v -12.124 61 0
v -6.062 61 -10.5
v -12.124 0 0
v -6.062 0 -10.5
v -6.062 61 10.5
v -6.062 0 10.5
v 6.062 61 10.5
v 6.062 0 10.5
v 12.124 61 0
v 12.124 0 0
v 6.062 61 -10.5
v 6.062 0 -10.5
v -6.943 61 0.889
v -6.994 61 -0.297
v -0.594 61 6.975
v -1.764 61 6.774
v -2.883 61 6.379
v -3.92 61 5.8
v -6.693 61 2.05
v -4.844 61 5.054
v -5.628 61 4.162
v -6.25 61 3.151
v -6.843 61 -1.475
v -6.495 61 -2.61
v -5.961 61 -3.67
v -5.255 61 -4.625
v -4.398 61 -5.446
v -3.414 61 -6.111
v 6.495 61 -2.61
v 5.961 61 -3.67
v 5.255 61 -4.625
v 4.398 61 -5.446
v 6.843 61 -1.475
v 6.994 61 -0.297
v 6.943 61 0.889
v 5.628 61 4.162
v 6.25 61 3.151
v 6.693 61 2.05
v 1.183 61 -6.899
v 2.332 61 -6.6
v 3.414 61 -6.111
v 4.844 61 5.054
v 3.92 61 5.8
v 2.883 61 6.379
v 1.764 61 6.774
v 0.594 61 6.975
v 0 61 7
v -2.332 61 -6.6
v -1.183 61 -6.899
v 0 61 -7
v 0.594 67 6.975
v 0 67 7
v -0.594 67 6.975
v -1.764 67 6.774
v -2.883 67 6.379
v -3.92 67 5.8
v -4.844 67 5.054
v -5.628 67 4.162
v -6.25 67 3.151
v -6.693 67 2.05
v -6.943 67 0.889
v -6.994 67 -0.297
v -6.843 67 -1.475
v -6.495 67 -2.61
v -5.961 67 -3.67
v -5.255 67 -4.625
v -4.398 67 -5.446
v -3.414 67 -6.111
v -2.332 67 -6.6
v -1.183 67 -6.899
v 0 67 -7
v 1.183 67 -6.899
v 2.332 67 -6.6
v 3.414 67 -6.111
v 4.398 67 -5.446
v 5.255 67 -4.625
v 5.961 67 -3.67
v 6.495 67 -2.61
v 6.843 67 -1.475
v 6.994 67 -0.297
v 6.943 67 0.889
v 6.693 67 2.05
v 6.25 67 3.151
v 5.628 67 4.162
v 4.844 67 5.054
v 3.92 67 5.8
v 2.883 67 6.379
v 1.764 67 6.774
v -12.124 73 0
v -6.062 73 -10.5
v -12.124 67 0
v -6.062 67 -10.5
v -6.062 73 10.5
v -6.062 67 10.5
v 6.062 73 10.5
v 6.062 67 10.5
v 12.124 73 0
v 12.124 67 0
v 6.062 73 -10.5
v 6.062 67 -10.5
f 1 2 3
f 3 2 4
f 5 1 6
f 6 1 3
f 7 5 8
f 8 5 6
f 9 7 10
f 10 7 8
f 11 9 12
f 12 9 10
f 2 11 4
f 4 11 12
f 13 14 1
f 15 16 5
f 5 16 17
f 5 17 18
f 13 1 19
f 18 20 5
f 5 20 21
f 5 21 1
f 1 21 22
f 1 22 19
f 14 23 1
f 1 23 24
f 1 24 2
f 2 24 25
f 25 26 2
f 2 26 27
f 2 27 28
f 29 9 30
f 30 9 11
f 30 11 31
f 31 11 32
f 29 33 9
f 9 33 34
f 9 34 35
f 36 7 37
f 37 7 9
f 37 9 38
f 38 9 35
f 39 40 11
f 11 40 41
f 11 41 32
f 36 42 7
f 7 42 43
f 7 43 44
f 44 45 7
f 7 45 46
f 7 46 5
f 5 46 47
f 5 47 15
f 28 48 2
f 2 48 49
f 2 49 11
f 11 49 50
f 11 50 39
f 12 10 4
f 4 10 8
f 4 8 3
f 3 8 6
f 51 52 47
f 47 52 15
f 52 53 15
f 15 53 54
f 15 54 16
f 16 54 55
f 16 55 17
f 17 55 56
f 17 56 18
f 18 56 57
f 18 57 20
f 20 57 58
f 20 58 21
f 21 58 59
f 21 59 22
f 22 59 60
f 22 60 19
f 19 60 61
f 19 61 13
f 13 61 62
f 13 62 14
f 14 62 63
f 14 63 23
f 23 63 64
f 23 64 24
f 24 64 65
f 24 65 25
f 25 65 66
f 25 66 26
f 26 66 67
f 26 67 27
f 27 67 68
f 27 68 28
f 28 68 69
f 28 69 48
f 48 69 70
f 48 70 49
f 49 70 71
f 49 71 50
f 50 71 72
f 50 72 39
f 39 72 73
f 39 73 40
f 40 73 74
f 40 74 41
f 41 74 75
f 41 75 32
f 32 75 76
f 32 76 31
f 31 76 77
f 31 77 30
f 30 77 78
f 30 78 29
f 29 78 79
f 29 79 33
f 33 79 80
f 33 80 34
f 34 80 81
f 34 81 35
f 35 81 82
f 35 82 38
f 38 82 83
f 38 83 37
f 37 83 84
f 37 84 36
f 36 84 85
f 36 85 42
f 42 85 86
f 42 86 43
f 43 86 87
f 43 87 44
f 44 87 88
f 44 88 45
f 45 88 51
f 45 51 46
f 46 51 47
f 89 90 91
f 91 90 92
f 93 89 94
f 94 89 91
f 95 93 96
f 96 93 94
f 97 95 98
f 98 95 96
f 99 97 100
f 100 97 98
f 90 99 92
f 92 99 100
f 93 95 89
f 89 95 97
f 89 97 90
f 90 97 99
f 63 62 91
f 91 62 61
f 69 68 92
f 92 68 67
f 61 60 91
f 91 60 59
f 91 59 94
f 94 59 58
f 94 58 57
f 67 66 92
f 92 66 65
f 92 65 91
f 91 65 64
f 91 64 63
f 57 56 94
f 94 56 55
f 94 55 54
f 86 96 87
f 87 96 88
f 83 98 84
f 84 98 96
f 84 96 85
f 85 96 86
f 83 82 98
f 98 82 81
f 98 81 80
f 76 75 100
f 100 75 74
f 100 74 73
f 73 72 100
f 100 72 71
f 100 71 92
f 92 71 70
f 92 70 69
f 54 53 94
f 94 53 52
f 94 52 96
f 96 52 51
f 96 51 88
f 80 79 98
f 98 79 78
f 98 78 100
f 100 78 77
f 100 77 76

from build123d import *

# Parameters (mm, degrees)
BOSS_EXTRUDE1_DEPTH = 61
SKETCH2_R           = 7
BOSS_EXTRUDE2_DEPTH = 6
BOSS_EXTRUDE3_DEPTH = 6


with BuildPart() as part:
    # Sketch1 → Boss-Extrude1 (new body)
    with BuildSketch(Plane(origin=(0, 0, 0), x_dir=(1, 0, 0), z_dir=(0, 1, 0))):
        Polygon((-12.124355653, 0), (-6.062177826, -10.5), (6.062177826, -10.5), (12.124355653, 0), (6.062177826, 10.5), (-6.062177826, 10.5), align=None)
    extrude(amount=BOSS_EXTRUDE1_DEPTH)

    # Sketch2 → Boss-Extrude2 (add)
    with BuildSketch(Plane(origin=(0, 61, 0), x_dir=(1, 0, 0), z_dir=(0, 1, 0))):
        with Locations(Location((0, 0, 0), (0, 0, 270))):
            Circle(SKETCH2_R)
    extrude(amount=BOSS_EXTRUDE2_DEPTH)

    # Sketch3 → Boss-Extrude3 (add)
    with BuildSketch(Plane(origin=(0, 67, 0), x_dir=(1, 0, 0), z_dir=(0, 1, 0))):
        Polygon((-12.124355653, 0), (-6.062177826, -10.5), (6.062177826, -10.5), (12.124355653, 0), (6.062177826, 10.5), (-6.062177826, 10.5), align=None)
    extrude(amount=BOSS_EXTRUDE3_DEPTH)


solid = part.part
